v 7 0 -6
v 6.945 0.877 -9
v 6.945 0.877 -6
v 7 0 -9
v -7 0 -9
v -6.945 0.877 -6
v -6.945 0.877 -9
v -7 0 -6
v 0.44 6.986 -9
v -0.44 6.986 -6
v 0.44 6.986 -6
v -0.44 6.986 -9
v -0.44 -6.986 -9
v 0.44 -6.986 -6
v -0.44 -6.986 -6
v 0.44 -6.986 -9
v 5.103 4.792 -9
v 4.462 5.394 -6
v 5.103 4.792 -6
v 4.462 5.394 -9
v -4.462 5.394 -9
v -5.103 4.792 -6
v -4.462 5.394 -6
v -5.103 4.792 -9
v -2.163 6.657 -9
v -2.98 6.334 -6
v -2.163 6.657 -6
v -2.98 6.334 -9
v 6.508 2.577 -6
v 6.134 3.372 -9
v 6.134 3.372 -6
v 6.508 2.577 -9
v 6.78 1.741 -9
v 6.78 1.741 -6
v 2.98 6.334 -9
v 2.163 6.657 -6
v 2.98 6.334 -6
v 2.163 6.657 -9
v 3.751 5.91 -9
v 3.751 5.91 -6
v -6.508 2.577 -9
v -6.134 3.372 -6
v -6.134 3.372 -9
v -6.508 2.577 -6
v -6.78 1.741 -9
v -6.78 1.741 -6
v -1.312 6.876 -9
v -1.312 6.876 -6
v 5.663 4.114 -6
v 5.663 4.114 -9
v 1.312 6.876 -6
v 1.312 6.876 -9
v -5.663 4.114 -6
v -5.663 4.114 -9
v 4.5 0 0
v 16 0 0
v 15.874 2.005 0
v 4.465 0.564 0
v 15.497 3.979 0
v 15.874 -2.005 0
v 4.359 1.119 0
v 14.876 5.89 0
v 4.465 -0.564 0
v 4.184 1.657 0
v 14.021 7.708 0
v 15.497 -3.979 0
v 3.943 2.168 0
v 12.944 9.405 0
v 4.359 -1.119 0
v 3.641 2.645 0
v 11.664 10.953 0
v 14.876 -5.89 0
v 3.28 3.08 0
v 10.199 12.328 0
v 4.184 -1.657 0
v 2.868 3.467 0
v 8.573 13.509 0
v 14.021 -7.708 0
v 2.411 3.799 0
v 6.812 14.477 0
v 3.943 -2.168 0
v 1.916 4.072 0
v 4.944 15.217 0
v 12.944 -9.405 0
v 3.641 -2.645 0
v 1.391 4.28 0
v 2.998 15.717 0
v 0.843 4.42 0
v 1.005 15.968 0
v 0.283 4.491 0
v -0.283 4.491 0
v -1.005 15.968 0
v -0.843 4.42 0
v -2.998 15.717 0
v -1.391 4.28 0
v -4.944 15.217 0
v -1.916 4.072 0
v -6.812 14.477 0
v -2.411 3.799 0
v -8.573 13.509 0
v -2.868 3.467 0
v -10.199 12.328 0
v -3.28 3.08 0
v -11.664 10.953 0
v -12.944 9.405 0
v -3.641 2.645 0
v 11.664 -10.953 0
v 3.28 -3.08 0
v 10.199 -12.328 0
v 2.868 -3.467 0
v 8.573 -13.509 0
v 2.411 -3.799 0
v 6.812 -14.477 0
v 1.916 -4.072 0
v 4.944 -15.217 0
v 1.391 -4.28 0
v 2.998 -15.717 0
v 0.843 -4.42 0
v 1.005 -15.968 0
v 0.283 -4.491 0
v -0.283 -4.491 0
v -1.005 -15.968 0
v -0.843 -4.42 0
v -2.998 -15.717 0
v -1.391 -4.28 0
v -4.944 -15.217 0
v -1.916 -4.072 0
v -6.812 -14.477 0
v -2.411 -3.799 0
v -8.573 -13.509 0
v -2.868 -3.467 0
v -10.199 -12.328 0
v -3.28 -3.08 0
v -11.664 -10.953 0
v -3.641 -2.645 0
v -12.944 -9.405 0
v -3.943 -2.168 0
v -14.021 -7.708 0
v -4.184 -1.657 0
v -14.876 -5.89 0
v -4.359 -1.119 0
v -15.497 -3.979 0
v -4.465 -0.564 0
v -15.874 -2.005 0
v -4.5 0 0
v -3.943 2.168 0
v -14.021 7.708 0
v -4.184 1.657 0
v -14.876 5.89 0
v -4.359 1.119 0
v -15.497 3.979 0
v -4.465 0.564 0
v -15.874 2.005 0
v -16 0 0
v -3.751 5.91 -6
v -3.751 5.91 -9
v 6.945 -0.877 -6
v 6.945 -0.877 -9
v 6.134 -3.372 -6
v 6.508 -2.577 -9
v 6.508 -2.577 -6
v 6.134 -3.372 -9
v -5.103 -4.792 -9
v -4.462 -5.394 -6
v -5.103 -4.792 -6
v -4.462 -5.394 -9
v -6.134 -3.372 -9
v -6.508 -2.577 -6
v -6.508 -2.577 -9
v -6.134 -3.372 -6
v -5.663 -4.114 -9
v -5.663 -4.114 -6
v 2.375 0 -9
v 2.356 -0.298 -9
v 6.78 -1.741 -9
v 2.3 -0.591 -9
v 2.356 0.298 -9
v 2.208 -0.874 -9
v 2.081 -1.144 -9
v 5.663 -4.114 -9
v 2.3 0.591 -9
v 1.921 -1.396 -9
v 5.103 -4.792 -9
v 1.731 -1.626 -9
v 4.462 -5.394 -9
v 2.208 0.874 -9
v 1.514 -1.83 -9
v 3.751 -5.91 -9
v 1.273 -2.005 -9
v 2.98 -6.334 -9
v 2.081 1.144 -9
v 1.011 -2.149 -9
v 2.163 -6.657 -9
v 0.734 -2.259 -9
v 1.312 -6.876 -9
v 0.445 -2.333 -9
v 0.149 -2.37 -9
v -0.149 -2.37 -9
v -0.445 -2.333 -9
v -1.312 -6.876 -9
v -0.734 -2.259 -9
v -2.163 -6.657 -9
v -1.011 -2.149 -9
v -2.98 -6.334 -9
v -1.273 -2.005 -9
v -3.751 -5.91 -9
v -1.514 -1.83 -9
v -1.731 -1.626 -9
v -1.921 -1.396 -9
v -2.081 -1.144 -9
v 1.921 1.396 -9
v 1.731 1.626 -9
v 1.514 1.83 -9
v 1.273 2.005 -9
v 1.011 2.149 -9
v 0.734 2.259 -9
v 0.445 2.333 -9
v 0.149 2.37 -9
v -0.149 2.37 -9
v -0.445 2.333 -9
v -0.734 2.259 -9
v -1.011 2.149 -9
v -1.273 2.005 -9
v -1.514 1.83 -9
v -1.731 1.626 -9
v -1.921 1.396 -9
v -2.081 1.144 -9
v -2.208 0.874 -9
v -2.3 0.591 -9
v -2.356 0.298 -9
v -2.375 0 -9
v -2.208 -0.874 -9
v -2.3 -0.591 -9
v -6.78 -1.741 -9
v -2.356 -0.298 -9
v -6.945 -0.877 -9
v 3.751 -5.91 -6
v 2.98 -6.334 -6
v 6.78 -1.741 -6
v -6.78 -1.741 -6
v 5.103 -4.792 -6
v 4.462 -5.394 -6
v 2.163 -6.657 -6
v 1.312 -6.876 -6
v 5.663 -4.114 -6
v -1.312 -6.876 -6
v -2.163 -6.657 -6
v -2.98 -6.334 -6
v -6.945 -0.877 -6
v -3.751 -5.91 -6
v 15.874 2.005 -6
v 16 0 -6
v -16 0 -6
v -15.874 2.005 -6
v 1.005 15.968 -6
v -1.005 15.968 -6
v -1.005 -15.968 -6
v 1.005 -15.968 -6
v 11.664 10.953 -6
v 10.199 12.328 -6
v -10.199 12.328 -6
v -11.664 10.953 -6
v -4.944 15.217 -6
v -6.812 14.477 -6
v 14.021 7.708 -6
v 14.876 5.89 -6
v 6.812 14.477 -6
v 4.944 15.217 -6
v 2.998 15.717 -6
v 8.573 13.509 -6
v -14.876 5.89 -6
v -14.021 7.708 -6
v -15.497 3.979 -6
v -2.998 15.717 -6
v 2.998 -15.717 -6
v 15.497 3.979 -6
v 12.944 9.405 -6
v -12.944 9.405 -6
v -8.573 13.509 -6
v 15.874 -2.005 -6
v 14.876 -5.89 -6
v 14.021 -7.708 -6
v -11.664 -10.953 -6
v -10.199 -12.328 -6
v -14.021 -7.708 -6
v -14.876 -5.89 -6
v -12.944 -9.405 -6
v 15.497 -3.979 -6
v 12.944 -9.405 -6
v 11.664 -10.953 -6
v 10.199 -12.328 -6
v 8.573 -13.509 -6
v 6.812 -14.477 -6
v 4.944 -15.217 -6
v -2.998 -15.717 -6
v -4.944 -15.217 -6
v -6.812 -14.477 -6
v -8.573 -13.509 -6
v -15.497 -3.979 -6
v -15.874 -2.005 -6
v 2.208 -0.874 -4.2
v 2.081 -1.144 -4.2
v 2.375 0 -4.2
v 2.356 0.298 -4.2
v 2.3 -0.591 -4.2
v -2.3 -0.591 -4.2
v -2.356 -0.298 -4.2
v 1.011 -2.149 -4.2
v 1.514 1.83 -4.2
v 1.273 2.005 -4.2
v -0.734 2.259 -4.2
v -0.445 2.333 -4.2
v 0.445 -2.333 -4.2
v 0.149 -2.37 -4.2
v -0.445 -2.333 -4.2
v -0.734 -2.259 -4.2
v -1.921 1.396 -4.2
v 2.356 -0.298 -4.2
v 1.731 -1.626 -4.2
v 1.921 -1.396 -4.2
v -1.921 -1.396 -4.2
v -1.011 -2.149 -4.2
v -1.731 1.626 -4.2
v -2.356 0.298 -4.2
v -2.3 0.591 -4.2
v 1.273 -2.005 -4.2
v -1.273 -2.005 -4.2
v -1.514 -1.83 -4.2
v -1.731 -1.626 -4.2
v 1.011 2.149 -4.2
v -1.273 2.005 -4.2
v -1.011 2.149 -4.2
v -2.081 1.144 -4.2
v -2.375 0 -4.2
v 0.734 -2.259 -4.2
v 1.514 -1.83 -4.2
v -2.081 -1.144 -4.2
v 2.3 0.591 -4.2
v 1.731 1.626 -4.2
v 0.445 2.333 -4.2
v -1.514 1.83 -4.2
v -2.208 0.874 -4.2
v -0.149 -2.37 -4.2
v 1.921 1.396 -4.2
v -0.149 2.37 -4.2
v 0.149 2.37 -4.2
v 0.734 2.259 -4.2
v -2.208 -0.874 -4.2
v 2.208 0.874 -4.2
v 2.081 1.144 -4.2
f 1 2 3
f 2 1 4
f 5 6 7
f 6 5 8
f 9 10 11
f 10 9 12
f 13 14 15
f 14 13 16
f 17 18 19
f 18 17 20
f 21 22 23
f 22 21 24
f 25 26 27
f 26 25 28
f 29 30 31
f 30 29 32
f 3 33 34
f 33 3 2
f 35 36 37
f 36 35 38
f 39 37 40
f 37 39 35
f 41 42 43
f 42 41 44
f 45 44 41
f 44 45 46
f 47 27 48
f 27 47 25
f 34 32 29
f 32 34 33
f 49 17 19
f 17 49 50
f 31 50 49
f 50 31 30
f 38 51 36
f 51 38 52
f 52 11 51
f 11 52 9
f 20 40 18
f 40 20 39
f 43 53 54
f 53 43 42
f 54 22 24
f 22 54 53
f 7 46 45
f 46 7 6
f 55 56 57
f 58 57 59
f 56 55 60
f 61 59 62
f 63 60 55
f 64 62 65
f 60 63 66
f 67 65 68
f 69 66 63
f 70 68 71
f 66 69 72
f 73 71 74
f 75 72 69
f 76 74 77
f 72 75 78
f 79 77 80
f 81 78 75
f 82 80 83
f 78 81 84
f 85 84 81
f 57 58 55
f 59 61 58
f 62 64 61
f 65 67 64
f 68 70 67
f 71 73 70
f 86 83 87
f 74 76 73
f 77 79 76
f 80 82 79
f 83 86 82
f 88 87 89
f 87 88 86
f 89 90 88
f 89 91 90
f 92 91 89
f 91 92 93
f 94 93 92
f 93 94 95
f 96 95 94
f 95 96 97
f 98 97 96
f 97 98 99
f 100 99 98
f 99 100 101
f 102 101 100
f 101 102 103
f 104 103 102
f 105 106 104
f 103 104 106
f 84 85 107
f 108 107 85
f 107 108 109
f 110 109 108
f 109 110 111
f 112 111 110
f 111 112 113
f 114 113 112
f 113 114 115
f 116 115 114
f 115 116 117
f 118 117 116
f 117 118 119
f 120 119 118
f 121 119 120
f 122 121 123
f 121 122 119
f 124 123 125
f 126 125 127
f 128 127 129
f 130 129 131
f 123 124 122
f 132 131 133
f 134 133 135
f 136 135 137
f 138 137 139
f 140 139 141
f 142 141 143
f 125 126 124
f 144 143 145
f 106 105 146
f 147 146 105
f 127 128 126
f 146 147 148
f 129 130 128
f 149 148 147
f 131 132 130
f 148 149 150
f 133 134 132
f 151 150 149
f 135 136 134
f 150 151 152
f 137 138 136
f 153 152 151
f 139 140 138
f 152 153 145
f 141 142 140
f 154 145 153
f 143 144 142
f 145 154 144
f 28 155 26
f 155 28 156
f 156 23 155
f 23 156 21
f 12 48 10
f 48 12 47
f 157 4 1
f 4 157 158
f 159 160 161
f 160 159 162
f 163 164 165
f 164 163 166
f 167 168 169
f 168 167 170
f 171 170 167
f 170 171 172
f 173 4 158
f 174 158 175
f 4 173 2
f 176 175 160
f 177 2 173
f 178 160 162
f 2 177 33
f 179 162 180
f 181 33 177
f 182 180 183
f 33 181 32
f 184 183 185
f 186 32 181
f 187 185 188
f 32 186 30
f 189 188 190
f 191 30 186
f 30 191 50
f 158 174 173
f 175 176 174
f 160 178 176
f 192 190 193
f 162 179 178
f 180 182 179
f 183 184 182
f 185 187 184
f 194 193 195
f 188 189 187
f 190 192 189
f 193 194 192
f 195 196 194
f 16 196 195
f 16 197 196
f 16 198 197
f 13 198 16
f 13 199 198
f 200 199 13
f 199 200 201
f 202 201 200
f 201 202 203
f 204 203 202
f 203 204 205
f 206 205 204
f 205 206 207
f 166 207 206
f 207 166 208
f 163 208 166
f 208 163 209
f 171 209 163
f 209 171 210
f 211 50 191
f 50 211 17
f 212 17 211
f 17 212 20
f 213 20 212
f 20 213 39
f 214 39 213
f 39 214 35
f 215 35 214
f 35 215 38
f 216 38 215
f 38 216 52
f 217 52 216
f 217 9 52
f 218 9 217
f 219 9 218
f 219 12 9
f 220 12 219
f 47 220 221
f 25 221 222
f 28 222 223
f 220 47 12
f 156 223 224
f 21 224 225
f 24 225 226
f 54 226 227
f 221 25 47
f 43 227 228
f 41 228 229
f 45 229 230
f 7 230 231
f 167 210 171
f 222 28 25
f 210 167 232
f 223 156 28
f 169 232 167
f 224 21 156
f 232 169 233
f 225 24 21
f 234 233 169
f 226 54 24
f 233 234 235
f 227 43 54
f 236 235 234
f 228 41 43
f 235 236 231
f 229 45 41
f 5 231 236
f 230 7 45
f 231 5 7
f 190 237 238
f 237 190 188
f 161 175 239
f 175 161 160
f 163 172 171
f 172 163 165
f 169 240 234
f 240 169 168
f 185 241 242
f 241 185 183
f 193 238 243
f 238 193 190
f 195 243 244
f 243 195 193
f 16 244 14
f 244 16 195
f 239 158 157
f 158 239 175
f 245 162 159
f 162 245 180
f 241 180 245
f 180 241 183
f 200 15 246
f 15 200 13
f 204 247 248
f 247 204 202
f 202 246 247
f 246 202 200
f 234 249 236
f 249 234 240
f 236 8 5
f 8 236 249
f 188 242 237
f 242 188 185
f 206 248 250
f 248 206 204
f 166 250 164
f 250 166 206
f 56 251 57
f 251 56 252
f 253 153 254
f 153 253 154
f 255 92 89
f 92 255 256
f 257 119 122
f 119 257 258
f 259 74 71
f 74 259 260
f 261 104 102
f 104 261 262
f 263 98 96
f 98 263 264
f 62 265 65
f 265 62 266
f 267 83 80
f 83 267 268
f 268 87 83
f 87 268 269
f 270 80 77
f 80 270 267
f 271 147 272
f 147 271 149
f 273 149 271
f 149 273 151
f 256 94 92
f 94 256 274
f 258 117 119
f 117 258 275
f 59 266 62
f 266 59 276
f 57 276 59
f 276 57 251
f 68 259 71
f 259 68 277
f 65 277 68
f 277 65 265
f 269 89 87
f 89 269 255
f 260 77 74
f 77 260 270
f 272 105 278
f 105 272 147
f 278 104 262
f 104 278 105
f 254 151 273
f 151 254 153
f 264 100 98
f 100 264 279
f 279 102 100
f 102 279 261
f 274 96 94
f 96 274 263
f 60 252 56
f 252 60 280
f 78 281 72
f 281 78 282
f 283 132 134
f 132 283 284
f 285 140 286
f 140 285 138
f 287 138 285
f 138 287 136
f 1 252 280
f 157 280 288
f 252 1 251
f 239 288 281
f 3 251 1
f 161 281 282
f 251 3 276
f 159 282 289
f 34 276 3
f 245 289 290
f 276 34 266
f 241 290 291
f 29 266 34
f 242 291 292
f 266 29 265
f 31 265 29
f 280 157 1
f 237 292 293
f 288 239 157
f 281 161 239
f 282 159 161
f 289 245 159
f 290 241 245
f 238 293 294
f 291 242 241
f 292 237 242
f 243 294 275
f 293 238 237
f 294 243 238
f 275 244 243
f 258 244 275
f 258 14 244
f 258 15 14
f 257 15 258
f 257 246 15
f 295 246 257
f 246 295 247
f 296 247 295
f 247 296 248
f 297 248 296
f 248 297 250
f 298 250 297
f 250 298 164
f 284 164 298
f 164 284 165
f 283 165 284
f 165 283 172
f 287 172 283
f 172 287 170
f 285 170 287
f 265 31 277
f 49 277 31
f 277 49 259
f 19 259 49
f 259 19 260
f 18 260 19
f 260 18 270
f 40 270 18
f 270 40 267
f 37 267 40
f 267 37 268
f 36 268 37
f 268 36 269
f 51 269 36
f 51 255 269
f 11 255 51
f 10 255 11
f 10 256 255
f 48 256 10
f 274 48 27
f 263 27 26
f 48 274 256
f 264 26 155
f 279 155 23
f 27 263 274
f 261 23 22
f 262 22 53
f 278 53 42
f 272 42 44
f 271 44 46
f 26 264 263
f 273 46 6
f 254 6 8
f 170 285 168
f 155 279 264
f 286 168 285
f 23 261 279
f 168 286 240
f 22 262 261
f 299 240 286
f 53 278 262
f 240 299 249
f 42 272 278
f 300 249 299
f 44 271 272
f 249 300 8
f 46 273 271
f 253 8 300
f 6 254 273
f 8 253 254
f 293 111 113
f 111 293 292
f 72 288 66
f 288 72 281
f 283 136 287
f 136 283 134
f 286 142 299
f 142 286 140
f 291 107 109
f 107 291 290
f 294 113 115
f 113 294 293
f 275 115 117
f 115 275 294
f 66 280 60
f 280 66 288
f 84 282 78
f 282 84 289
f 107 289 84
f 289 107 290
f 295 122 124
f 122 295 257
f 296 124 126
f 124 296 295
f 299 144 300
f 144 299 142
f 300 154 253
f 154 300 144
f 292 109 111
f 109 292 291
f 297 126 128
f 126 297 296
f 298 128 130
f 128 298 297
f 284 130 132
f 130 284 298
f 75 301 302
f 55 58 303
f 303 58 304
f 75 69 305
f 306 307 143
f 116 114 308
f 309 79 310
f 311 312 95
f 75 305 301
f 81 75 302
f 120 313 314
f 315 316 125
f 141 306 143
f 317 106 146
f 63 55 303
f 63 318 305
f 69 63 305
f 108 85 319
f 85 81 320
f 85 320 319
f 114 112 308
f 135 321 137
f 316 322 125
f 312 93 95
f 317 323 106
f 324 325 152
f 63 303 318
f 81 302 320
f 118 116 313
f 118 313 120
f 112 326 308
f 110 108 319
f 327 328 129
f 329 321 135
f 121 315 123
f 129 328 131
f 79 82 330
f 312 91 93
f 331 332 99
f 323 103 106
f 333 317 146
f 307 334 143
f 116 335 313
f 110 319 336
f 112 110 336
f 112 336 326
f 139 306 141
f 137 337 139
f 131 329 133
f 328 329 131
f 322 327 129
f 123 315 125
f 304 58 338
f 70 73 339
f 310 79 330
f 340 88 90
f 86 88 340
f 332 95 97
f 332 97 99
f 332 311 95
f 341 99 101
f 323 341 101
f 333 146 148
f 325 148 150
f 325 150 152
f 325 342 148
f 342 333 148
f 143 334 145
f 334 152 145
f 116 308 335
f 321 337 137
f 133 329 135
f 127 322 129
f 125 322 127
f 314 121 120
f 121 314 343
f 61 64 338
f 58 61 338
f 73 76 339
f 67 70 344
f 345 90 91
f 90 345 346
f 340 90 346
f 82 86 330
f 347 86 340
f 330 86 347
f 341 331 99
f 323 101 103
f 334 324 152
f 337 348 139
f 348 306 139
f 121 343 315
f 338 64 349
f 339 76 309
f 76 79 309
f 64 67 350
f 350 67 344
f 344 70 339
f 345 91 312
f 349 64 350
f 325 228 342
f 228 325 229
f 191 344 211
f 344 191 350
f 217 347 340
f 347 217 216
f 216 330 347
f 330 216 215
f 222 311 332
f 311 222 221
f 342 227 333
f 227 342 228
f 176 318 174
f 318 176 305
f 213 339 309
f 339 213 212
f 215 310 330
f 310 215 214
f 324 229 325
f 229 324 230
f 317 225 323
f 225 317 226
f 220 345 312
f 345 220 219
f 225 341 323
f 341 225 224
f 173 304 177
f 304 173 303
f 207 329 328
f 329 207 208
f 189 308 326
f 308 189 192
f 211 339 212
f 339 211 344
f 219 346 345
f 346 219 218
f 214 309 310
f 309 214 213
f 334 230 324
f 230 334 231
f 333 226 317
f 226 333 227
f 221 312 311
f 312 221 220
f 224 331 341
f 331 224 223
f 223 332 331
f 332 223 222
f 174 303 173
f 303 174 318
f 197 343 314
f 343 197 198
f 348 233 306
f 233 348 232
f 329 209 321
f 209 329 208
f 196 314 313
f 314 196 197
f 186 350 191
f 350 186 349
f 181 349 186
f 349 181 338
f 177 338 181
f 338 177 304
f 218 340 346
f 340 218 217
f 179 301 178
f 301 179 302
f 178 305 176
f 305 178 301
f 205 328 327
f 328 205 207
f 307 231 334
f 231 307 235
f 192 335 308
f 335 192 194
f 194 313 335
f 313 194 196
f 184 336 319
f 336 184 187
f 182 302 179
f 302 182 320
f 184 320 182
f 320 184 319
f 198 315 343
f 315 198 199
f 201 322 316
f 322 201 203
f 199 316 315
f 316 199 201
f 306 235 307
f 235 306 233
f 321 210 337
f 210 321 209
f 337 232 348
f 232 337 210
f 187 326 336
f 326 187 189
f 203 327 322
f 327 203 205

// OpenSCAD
$fn = 50;


difference() {
	union() {
		translate(v = [0, 0, -9.0000000000]) {
			cylinder(h = 9, r = 7.0000000000);
		}
		translate(v = [0, 0, -6.0000000000]) {
			cylinder(h = 6, r = 16.0000000000);
		}
	}
	union() {
		translate(v = [0, 0, 0]) {
			rotate(a = [0, 0, 0]) {
				difference() {
					union() {
						#translate(v = [0, 0, -9.0000000000]) {
							cylinder(h = 9, r = 2.2500000000);
						}
						#translate(v = [0, 0, -4.2000000000]) {
							cylinder(h = 4.2000000000, r1 = 2.3750000000, r2 = 4.5000000000);
						}
						#translate(v = [0, 0, -9.0000000000]) {
							cylinder(h = 9, r = 2.3750000000);
						}
						#translate(v = [0, 0, -9.0000000000]) {
							cylinder(h = 9, r = 2.2500000000);
						}
					}
					union();
				}
			}
		}
	}
}
